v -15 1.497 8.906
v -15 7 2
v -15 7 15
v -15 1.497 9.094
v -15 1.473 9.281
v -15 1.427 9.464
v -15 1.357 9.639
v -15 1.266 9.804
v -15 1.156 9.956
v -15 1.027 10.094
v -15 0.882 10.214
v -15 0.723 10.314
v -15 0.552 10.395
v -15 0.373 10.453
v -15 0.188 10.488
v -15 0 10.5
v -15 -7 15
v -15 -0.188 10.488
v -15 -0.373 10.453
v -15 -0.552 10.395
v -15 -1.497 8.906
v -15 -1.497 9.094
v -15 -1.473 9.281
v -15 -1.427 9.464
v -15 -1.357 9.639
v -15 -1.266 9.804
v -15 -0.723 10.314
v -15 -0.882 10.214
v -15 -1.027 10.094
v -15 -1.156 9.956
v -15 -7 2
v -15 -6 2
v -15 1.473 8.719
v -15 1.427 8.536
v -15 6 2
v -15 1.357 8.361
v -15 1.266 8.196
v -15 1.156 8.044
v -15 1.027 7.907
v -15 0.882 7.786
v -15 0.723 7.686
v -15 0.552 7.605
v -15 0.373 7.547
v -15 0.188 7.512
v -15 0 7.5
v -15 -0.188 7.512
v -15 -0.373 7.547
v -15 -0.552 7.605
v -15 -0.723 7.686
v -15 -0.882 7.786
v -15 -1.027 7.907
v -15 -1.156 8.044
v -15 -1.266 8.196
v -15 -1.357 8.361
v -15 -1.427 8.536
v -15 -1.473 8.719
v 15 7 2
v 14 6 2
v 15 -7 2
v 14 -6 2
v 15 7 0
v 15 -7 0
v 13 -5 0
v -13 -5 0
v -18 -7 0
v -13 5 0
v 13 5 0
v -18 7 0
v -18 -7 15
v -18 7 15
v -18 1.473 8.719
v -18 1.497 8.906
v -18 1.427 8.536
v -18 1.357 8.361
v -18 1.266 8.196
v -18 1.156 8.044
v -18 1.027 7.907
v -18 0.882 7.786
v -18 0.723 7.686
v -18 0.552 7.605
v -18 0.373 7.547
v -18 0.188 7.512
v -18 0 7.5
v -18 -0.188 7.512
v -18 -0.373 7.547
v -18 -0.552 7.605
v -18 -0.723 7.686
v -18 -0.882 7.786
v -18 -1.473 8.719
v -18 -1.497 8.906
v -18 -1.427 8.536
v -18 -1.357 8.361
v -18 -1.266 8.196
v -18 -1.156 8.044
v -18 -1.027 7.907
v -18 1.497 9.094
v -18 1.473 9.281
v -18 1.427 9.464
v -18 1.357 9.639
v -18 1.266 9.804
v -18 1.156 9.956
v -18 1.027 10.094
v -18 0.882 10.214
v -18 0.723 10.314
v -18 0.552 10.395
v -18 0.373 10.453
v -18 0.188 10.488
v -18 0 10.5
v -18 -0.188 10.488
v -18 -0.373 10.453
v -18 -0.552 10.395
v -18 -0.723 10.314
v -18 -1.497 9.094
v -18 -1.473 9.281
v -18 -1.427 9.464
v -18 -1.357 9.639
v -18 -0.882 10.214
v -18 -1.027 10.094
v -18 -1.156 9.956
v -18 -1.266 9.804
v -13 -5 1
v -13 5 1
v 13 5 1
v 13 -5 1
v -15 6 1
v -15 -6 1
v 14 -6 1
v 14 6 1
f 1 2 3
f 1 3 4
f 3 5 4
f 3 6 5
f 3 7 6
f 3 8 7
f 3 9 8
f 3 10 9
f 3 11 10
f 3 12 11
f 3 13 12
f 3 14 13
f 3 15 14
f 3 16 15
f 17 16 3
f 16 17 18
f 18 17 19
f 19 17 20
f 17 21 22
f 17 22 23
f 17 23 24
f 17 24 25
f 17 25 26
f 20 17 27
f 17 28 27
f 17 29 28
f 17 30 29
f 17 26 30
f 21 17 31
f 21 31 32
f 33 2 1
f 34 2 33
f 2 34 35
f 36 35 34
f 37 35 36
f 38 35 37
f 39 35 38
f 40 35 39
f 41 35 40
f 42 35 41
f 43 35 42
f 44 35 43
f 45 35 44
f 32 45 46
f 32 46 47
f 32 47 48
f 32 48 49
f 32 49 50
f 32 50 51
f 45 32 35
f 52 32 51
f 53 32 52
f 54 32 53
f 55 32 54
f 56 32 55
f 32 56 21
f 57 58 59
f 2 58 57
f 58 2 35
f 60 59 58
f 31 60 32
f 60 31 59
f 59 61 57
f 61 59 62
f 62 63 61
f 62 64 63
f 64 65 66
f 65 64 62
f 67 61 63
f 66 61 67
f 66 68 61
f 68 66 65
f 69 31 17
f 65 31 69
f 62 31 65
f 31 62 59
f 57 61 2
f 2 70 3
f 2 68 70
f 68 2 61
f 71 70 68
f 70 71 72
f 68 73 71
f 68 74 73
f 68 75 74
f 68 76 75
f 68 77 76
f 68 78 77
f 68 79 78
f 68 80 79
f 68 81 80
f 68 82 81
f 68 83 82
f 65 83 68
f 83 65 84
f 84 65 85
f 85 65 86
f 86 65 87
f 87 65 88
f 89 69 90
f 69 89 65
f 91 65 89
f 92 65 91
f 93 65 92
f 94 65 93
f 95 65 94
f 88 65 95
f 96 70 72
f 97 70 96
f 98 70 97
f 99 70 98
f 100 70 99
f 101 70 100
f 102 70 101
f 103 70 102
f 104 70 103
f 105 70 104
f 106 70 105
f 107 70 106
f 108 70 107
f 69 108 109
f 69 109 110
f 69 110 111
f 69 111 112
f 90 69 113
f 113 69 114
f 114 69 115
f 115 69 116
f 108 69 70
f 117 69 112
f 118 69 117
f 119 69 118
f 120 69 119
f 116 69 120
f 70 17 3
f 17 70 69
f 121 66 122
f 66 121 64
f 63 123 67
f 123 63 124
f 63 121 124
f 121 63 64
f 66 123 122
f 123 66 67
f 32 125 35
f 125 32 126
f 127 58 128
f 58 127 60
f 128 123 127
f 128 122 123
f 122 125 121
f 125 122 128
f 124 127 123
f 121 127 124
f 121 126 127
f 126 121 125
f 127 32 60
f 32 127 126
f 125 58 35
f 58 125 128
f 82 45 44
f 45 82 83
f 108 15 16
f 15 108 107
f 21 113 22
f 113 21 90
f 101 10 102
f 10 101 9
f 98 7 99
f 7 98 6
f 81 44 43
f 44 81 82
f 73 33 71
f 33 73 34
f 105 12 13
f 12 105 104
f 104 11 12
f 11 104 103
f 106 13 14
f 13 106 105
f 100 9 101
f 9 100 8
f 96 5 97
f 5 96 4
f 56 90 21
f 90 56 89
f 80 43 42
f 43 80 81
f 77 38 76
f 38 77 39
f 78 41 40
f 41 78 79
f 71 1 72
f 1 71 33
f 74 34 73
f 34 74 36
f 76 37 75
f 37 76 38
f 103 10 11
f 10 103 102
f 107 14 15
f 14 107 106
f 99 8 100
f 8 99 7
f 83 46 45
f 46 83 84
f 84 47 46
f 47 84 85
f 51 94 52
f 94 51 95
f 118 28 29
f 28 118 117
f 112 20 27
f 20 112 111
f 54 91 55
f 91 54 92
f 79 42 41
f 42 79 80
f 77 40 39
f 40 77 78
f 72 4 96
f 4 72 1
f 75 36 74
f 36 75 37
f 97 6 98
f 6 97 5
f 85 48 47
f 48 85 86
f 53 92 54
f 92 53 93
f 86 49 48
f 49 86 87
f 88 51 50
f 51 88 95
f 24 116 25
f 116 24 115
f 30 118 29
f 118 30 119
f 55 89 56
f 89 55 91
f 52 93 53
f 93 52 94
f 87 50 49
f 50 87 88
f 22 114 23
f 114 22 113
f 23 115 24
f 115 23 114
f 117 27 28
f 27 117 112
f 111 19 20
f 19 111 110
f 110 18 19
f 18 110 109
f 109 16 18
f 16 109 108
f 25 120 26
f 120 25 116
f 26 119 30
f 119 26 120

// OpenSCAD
$fn = 50;


difference() {
	union() {
		translate(v = [-15.0000000000, -7.0000000000, 0]) {
			rotate(a = [0, 0, 0]) {
				cube(size = [30, 14, 2]);
			}
		}
		translate(v = [-18.0000000000, -7.0000000000, 0]) {
			rotate(a = [0, 0, 0]) {
				cube(size = [3, 14, 15]);
			}
		}
	}
	union() {
		translate(v = [-13.0000000000, -5.0000000000, 0]) {
			rotate(a = [0, 0, 0]) {
				cube(size = [26, 10, 2]);
			}
		}
		translate(v = [-15.0000000000, -6.0000000000, 1]) {
			rotate(a = [0, 0, 0]) {
				cube(size = [29, 12, 1]);
			}
		}
		#translate(v = [-25.0000000000, 0, 9]) {
			rotate(a = [0, 90, 0]) {
				cylinder(h = 20, r = 1.5000000000);
			}
		}
	}
}
